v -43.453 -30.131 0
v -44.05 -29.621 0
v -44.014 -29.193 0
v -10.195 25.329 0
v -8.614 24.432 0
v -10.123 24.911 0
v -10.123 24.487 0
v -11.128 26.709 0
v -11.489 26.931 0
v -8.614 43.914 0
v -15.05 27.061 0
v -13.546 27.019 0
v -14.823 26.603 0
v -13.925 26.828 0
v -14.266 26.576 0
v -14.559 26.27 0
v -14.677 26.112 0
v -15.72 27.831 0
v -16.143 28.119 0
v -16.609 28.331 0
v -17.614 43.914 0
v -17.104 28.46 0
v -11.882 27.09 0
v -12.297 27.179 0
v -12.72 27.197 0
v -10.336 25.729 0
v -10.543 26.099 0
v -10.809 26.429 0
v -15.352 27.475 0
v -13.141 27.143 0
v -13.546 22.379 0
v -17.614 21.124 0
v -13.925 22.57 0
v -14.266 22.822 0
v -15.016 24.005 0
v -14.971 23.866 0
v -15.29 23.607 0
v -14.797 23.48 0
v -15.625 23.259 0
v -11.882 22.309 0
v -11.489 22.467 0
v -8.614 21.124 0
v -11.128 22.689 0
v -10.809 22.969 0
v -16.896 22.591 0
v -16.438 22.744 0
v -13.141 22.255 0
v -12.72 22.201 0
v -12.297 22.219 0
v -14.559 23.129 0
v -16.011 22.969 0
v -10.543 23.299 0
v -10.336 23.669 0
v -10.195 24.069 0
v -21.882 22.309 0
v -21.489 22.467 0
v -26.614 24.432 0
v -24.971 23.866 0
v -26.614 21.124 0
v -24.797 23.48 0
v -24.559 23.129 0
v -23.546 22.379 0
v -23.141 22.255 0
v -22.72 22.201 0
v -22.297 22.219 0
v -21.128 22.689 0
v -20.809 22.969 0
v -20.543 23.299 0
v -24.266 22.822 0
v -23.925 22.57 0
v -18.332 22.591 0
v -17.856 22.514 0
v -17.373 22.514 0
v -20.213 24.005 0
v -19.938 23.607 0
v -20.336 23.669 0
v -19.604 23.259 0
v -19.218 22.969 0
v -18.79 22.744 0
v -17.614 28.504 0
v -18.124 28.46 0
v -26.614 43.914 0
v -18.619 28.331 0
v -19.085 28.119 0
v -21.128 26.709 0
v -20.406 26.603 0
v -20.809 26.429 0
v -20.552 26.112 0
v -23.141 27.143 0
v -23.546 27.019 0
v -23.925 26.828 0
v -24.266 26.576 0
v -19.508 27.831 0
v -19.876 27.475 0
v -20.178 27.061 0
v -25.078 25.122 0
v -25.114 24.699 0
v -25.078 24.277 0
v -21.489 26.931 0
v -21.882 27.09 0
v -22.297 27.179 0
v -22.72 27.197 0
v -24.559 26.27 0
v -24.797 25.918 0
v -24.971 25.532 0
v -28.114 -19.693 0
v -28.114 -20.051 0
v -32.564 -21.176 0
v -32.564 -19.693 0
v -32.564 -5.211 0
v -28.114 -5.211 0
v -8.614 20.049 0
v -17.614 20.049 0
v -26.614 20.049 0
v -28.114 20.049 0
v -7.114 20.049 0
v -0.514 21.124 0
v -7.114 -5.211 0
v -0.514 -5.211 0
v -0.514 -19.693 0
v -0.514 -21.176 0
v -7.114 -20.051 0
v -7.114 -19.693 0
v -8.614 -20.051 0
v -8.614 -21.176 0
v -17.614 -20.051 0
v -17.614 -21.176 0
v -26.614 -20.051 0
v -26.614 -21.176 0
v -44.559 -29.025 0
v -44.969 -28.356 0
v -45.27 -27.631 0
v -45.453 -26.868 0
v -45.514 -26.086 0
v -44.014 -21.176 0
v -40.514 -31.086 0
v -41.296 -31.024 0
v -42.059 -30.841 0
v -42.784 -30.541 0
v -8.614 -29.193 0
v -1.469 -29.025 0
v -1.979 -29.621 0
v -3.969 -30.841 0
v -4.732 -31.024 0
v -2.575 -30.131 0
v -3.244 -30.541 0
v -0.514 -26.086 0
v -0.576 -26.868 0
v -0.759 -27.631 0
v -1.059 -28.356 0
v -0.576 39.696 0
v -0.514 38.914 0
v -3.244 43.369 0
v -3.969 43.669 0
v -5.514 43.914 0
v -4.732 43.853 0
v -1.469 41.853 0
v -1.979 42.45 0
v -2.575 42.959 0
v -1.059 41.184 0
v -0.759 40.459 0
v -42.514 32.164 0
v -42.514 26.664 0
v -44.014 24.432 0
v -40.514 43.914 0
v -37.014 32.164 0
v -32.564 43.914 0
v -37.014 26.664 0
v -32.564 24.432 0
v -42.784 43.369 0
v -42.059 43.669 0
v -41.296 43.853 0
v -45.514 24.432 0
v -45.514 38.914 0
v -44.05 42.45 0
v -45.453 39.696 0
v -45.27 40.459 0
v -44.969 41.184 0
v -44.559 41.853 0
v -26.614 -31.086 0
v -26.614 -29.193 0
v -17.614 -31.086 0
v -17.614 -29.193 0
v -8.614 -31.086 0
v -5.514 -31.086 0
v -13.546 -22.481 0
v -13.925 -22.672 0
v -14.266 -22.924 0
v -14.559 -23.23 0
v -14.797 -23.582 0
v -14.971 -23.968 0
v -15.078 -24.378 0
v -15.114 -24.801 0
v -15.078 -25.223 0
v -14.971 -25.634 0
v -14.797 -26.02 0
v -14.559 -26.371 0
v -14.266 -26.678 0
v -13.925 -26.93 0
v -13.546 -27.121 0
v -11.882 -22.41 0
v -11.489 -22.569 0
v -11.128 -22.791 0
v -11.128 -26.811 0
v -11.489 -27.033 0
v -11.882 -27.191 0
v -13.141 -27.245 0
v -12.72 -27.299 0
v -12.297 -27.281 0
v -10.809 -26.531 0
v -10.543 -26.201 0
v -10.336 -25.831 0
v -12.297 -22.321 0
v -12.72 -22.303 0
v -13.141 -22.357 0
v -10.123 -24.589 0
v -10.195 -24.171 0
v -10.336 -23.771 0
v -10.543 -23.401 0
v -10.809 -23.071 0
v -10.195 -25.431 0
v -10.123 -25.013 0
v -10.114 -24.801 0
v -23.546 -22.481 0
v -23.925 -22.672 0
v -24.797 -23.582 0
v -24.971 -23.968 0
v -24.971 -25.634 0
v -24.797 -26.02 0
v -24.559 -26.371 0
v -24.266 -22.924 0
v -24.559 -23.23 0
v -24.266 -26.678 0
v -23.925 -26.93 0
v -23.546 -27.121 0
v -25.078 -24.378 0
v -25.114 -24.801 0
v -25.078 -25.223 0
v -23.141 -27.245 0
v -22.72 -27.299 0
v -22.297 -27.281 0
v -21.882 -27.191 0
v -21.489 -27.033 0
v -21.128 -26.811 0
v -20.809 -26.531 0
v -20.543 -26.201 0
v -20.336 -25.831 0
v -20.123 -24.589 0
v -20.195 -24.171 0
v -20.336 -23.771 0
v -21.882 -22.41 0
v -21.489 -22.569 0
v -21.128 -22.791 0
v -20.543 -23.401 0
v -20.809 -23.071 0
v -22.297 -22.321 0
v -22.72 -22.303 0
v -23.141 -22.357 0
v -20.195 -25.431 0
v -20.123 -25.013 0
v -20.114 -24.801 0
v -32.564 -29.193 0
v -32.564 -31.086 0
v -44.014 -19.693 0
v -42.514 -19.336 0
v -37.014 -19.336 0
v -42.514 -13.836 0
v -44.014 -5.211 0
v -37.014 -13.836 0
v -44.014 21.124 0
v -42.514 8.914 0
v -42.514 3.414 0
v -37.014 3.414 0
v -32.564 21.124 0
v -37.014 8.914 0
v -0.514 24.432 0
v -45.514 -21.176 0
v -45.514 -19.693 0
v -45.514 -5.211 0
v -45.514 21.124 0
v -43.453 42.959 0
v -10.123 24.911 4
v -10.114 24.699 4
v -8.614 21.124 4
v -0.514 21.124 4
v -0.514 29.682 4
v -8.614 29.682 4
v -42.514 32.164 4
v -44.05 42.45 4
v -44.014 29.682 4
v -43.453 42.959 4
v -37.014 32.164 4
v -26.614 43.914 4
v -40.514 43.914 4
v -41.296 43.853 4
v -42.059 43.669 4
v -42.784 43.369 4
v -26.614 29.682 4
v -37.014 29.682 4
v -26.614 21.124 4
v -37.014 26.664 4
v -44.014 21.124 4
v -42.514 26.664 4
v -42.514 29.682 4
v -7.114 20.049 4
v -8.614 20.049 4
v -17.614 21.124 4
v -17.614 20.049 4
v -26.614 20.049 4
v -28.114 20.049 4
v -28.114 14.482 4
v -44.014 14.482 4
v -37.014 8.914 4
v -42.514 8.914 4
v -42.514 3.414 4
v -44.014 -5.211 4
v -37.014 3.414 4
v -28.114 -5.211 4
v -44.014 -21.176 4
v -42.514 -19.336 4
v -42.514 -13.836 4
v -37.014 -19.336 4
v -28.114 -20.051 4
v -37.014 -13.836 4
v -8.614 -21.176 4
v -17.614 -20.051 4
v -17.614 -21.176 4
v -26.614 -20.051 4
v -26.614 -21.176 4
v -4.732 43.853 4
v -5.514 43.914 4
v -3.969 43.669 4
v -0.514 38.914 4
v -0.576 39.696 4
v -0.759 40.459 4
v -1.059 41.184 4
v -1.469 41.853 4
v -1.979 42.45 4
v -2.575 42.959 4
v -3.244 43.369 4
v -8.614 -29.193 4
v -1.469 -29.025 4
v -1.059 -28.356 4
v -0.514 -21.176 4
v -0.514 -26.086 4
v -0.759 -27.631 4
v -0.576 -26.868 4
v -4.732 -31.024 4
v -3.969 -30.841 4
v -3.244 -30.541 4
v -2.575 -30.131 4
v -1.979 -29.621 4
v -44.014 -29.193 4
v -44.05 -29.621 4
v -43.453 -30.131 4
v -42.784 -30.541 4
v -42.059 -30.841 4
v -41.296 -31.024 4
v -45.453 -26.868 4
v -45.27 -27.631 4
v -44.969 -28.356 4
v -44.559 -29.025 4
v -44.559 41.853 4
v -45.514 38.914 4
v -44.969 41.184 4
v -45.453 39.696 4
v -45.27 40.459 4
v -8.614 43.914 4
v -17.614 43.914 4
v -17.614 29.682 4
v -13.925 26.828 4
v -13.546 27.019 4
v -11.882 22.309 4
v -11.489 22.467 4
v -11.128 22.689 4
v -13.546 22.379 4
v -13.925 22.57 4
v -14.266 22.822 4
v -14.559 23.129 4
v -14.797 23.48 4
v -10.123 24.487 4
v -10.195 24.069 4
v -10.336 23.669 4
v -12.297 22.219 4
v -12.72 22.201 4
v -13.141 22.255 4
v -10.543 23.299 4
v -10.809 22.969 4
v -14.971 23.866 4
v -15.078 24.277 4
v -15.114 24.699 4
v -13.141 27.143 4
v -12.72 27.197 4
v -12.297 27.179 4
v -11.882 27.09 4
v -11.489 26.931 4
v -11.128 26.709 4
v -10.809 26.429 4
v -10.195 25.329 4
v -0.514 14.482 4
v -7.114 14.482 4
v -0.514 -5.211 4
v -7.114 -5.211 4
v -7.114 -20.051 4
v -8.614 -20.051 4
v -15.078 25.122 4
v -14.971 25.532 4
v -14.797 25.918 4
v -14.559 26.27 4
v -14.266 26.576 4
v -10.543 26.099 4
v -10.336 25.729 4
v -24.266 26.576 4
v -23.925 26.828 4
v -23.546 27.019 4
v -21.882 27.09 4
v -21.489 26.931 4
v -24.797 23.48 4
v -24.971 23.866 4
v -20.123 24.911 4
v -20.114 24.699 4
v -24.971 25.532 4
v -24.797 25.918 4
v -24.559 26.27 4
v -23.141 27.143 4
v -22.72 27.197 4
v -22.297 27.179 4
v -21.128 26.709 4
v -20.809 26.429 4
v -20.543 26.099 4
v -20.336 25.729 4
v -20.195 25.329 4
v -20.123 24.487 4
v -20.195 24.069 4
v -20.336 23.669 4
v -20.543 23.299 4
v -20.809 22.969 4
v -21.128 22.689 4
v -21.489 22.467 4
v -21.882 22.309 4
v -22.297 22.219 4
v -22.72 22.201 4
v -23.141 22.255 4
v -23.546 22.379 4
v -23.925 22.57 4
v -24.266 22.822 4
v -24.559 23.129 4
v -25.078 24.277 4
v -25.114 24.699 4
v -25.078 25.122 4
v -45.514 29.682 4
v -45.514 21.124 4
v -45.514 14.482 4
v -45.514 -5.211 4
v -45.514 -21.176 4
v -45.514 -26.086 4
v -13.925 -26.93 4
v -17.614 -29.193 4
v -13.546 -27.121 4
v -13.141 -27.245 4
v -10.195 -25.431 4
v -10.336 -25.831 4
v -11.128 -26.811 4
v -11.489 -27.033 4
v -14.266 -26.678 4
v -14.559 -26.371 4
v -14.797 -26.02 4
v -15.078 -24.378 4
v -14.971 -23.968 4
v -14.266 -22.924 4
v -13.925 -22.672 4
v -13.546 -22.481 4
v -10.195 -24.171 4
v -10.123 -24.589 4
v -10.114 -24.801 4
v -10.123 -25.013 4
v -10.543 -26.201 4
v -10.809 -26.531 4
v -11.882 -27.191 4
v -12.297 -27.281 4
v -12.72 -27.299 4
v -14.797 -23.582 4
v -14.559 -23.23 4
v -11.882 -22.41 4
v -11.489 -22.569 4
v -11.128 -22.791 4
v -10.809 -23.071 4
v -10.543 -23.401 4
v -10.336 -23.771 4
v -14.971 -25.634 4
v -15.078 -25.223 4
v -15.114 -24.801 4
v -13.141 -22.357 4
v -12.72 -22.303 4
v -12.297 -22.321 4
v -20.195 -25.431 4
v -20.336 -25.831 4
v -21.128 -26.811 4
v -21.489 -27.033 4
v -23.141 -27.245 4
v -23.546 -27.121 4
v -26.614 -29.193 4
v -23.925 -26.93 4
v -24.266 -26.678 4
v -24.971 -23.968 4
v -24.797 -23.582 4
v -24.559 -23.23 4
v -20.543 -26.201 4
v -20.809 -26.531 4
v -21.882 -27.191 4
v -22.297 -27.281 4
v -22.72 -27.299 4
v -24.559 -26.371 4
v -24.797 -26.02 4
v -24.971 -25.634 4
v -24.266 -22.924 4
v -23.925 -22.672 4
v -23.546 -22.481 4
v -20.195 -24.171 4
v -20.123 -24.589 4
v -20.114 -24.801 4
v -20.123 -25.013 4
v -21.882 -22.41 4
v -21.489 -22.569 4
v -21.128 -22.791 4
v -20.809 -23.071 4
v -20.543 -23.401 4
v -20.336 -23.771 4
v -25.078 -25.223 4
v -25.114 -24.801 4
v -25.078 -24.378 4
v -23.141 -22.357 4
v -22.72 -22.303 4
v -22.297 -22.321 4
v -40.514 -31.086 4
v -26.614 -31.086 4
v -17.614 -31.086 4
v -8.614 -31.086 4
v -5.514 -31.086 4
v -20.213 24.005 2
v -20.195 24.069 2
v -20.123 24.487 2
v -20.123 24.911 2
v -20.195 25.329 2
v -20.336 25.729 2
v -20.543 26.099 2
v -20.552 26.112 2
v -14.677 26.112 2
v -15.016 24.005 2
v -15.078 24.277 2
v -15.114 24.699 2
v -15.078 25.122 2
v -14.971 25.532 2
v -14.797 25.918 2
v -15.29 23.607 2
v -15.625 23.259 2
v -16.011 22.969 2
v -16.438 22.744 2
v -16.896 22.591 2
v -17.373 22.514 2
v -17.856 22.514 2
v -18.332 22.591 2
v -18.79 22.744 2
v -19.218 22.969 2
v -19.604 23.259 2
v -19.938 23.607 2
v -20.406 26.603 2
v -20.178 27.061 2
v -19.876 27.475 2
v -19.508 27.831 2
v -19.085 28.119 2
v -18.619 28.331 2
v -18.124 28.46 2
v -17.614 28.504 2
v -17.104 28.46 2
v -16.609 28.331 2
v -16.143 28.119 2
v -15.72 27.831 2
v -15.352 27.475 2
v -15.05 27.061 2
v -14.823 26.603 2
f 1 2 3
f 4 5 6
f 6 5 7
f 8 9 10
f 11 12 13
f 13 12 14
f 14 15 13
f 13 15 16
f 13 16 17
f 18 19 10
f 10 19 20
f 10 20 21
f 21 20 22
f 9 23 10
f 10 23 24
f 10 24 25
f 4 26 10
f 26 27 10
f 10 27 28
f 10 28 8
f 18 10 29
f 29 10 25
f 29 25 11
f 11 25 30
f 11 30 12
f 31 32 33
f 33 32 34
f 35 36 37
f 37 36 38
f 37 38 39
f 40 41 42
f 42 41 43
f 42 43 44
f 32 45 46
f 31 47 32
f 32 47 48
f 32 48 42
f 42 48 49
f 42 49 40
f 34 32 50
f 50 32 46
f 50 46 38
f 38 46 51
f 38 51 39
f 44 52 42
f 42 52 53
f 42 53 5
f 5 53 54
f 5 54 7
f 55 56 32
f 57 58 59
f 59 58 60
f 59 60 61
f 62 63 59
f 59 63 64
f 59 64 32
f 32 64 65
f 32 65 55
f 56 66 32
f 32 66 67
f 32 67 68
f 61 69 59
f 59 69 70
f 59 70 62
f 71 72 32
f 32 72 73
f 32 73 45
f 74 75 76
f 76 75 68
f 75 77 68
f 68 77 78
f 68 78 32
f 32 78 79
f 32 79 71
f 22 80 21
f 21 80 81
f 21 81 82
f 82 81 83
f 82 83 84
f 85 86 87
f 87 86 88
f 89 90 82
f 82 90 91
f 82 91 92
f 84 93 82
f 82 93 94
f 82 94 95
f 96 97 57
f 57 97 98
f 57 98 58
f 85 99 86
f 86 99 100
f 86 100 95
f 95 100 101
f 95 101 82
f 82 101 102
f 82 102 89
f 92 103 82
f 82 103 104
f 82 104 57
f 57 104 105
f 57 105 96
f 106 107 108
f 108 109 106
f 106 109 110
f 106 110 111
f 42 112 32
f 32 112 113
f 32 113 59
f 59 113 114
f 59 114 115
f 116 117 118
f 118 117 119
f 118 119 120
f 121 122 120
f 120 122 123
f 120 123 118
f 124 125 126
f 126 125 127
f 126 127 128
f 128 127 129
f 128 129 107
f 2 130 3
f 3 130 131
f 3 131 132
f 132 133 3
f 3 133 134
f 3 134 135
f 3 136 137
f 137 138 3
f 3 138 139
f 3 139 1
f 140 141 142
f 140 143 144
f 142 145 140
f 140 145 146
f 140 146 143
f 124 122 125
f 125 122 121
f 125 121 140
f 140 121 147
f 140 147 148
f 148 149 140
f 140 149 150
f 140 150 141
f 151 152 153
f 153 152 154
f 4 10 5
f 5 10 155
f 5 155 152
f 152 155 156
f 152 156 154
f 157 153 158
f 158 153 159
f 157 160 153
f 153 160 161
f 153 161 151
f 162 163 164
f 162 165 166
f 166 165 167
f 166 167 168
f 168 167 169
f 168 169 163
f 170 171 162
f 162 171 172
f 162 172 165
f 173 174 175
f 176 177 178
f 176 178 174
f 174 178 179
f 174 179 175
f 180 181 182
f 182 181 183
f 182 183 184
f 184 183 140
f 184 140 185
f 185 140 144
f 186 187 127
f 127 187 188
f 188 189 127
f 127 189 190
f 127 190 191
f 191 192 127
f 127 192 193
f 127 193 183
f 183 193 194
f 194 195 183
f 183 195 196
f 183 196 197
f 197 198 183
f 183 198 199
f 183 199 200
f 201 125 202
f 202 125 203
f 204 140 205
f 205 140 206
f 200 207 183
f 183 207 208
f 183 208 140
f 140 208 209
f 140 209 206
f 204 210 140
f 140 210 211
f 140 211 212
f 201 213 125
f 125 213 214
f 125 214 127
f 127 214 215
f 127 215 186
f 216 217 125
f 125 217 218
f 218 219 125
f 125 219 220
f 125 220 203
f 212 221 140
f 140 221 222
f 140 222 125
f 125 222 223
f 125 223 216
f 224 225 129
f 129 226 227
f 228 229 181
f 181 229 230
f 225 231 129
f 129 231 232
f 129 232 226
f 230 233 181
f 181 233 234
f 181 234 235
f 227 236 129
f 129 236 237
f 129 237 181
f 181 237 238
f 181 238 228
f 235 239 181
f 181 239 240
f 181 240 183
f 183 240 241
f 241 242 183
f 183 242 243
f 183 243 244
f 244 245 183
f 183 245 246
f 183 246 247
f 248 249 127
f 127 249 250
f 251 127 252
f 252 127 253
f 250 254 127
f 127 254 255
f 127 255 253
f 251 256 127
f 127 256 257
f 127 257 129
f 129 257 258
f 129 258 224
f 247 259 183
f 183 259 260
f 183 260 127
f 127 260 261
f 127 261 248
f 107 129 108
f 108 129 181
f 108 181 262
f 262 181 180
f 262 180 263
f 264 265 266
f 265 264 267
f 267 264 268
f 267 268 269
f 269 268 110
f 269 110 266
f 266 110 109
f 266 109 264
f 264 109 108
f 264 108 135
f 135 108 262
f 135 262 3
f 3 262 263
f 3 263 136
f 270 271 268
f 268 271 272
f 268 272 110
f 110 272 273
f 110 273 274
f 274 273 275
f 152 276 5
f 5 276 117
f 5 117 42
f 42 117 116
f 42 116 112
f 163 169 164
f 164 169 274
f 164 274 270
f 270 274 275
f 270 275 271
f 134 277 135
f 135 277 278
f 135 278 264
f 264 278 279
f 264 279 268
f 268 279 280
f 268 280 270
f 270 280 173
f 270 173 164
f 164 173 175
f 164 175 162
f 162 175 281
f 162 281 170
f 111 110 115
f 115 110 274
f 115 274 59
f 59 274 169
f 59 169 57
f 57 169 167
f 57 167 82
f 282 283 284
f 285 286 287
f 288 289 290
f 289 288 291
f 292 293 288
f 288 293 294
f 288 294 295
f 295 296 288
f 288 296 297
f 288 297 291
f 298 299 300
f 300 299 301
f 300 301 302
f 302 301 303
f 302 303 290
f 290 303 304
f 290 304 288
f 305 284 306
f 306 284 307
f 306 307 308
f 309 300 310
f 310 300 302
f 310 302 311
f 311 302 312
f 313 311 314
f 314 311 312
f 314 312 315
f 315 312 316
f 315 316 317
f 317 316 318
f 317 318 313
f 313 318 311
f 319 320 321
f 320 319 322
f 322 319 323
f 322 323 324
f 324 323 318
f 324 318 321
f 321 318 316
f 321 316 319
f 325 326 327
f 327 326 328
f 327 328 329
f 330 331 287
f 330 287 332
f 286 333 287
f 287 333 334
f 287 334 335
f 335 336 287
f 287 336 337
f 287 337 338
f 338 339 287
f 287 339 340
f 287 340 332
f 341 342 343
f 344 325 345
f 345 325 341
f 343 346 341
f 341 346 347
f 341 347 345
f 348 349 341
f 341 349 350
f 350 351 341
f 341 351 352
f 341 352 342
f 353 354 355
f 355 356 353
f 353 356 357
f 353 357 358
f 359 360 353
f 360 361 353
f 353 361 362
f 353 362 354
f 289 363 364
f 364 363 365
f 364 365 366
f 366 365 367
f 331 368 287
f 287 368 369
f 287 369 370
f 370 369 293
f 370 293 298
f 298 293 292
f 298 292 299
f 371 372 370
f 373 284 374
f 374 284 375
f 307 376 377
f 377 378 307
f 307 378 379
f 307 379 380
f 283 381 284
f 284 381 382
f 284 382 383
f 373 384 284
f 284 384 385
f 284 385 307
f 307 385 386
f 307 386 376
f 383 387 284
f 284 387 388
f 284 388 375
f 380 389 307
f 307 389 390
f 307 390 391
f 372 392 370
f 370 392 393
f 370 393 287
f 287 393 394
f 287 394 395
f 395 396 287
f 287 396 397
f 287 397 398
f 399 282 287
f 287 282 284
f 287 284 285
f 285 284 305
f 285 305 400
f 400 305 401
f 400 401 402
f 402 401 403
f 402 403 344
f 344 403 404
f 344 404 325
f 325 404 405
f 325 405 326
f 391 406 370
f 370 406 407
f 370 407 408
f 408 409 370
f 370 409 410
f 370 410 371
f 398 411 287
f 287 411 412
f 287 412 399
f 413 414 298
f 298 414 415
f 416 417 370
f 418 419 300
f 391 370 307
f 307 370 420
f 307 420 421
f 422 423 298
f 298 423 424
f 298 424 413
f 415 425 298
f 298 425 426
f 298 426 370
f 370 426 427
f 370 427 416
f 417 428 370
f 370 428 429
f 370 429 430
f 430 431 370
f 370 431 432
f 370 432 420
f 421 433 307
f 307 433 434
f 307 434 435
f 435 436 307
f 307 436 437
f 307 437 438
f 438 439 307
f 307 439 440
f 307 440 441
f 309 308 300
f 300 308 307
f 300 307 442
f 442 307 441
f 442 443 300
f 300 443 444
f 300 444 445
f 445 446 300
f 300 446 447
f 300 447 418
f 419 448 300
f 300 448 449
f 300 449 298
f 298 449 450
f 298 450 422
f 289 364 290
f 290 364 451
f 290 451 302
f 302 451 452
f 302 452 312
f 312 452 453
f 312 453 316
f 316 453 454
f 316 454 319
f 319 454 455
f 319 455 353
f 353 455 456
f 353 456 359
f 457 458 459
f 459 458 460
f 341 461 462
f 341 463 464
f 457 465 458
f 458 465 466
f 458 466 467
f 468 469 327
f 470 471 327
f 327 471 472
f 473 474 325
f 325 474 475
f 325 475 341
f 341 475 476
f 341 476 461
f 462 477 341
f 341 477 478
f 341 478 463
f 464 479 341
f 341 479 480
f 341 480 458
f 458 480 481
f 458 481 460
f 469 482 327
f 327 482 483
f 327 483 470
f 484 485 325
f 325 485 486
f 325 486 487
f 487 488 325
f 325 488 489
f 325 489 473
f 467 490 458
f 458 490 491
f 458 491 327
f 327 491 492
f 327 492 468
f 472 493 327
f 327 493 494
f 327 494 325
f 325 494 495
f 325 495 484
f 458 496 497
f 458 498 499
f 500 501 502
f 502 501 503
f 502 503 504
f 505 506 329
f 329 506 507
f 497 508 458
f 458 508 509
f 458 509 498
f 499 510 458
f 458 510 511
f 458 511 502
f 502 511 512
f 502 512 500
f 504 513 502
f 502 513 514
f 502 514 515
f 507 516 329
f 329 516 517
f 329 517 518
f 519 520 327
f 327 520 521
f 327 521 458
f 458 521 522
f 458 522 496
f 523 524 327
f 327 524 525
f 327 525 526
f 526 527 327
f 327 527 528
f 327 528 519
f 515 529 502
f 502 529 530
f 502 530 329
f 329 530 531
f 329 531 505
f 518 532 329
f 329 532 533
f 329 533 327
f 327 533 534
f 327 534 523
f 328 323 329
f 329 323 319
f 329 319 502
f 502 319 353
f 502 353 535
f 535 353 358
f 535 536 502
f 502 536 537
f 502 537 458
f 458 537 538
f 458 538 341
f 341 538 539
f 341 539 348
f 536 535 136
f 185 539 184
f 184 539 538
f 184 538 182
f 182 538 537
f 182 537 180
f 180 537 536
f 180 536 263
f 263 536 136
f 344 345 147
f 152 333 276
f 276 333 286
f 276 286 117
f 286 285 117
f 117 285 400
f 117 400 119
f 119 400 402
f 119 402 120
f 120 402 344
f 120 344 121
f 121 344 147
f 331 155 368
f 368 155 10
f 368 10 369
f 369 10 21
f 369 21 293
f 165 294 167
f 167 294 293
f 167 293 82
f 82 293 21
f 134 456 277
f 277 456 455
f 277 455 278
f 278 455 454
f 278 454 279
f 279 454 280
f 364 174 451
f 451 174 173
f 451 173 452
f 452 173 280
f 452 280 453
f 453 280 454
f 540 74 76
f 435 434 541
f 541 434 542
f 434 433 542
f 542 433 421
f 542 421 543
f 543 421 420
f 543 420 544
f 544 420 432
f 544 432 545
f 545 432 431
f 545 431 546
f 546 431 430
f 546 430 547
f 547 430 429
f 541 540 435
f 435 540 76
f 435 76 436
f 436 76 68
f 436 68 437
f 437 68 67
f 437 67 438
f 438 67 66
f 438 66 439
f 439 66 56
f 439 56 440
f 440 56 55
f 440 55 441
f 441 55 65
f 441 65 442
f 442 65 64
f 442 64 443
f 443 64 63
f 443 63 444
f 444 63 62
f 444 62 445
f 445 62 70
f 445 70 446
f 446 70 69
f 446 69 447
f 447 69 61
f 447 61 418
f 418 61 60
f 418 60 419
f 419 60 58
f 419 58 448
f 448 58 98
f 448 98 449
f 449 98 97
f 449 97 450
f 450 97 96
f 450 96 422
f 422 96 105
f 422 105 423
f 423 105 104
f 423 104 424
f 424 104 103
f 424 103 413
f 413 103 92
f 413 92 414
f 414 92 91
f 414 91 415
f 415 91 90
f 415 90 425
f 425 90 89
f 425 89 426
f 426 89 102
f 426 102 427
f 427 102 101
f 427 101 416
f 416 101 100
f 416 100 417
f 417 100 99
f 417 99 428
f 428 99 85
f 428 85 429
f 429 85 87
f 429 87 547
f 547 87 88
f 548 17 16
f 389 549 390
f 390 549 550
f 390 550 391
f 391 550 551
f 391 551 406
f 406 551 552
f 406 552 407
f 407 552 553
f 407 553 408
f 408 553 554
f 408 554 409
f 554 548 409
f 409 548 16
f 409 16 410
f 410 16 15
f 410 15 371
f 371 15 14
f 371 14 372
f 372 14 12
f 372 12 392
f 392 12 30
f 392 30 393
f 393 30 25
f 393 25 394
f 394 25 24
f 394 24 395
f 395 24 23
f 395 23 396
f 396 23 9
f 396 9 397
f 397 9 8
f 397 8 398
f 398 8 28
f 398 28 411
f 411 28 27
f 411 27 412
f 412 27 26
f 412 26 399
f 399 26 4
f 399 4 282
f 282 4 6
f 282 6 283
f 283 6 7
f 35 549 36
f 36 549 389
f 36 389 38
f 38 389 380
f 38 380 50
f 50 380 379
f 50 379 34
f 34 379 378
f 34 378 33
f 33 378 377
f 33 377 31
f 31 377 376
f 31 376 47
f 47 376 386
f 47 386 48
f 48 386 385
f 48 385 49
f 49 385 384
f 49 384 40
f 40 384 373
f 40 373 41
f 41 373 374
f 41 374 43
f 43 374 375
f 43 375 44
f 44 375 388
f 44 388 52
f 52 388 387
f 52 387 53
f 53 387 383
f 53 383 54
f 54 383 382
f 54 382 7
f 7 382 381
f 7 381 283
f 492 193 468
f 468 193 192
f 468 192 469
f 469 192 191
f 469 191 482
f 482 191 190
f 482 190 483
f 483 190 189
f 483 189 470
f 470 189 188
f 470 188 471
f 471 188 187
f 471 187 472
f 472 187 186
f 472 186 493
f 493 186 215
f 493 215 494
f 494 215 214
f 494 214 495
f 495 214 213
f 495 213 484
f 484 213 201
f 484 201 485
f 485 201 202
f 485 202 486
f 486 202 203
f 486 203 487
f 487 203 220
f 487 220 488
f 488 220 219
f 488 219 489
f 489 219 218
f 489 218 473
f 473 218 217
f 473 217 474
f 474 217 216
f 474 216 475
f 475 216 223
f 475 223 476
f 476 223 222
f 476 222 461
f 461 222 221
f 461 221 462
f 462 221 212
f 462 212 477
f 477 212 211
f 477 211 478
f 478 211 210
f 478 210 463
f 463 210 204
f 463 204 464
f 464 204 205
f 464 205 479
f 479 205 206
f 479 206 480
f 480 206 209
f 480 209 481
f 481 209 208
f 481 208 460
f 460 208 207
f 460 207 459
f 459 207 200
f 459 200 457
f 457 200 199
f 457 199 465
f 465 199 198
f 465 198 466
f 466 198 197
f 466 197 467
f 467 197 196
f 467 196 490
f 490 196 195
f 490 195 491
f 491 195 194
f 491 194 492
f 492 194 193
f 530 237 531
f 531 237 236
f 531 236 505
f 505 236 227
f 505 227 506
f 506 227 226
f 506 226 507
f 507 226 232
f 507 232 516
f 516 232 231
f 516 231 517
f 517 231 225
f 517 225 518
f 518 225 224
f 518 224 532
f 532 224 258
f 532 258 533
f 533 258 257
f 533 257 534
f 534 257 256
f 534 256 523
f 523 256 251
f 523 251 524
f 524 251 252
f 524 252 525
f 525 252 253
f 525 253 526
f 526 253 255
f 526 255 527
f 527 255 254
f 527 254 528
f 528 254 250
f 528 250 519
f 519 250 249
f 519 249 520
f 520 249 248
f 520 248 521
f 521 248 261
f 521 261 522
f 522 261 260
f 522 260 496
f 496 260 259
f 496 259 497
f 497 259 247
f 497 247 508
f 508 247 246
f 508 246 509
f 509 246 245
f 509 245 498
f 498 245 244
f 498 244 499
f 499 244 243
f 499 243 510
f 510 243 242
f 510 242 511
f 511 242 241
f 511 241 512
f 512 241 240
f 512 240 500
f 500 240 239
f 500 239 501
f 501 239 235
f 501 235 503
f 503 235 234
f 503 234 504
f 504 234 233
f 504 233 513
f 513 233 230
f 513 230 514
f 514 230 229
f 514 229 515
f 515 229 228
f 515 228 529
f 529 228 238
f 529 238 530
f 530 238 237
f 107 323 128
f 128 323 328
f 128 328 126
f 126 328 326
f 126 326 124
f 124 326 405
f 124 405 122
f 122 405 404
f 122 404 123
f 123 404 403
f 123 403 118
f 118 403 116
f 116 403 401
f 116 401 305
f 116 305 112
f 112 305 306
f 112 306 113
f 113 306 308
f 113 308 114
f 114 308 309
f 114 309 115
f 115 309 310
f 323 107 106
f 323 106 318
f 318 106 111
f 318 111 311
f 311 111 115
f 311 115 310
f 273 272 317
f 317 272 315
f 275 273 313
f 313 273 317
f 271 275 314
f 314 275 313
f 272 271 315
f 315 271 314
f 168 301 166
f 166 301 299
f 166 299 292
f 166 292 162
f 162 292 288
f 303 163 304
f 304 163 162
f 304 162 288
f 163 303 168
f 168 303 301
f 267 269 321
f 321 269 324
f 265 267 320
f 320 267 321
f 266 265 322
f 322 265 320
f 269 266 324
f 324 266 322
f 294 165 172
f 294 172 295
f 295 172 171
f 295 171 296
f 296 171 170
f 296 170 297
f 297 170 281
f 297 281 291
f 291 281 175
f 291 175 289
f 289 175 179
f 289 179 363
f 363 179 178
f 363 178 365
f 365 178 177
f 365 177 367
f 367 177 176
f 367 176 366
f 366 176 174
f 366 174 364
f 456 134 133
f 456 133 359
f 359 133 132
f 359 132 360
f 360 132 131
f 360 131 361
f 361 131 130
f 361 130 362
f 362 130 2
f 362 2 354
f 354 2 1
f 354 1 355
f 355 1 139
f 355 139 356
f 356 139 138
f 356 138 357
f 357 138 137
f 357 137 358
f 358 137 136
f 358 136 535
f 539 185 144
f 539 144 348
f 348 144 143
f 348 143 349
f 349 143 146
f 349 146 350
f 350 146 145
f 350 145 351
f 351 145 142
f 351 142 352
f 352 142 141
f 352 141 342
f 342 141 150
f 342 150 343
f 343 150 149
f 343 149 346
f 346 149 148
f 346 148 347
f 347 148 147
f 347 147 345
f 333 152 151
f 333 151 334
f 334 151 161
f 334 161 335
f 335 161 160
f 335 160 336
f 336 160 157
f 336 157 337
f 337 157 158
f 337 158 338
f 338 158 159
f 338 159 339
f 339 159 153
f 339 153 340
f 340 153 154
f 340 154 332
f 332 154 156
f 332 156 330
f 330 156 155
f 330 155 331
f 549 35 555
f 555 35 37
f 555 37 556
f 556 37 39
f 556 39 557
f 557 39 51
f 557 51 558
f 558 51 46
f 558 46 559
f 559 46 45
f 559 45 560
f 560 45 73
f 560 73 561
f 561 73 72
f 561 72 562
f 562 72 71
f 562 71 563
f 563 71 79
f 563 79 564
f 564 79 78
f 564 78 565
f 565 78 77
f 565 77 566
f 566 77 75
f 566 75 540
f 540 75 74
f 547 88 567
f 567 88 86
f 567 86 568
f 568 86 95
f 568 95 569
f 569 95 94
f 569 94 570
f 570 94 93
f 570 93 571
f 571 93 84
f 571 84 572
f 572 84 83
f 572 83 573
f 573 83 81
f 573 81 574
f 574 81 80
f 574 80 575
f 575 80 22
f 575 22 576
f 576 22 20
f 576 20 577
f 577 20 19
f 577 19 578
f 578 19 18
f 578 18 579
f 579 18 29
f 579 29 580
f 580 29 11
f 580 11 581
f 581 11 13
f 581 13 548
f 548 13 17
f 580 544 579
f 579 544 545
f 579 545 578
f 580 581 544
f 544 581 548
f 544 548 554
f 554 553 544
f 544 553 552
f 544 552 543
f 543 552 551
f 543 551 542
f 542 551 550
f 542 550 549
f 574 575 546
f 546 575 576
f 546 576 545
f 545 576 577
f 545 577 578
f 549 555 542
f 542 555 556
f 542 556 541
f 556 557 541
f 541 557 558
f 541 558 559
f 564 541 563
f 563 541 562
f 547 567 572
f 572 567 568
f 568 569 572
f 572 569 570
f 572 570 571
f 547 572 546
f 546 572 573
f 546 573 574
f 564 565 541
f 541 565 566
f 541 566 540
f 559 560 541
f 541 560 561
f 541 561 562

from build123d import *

# Parameters (mm, degrees)
SKETCH_4_R          = 2.5
SKETCH_4_W          = 21
SKETCH_4_H          = 40.1
EXTRUDE_1_DEPTH     = 4
SKETCH_5_W          = 5.5
SKETCH_5_H          = 5.5
CUT_EXTRUDE_5_DEPTH = 10
FILLET_1_R          = 5
SKETCH_6_R          = 3
CUT_EXTRUDE_6_DEPTH = 2


with BuildPart() as part:
    # 草图4 → 凸台-拉伸1 (new body)
    with BuildSketch(Plane.XY):
        Polygon((-30.514243596, -31.085830111), (-0.514243596, -31.085830111), (-0.514243596, 43.914169889), (-30.514243596, 43.914169889), (-45.514243596, 43.914169889), (-45.514243596, -31.085830111), align=None)
        with Locations((-22.614243596, 24.699169889)):
            Circle(SKETCH_4_R, mode=Mode.SUBTRACT)
        with Locations((-12.614243596, 24.699169889)):
            Circle(SKETCH_4_R, mode=Mode.SUBTRACT)
        with Locations((-12.614243596, -24.800830111)):
            Circle(SKETCH_4_R, mode=Mode.SUBTRACT)
        with Locations((-22.614243596, -24.800830111)):
            Circle(SKETCH_4_R, mode=Mode.SUBTRACT)
        with Locations((-17.614243596, -0.000830111)):
            Rectangle(SKETCH_4_W, SKETCH_4_H, mode=Mode.SUBTRACT)
    extrude(amount=EXTRUDE_1_DEPTH)

    # 草图5 → 切除-拉伸5 (cut)
    with BuildSketch(Plane(origin=(0, 0, 0), x_dir=(-1, 0, 0), z_dir=(0, 0, -1))):
        Polygon((42.514243596, 3.414169889), (42.514243596, 6.414169889), (42.514243596, 8.914169889), (37.014243596, 8.914169889), (37.014243596, 3.414169889), align=None)
        with Locations((39.764243596, 29.414169889)):
            Rectangle(SKETCH_5_W, SKETCH_5_H)
        with Locations((39.764243596, -16.585830111)):
            Rectangle(SKETCH_5_W, SKETCH_5_H)
    extrude(amount=-CUT_EXTRUDE_5_DEPTH, mode=Mode.SUBTRACT)

    # 圆角1
    fillet_1_edges = [part.edges().sort_by_distance(p)[0] for p in [
        (-45.514243596, -31.085830111, 2),
        (-45.514243596, 43.914169889, 2),
        (-0.514243596, 43.914169889, 2),
        (-0.514243596, -31.085830111, 2),
    ]]
    fillet(fillet_1_edges, radius=FILLET_1_R)

    # 草图6 → 切除-拉伸6 (cut)
    with BuildSketch(Plane(origin=(0, 0, 0), x_dir=(-1, 0, 0), z_dir=(0, 0, -1))):
        with Locations((17.614243596, 25.504169889)):
            Circle(SKETCH_6_R)
    extrude(amount=-CUT_EXTRUDE_6_DEPTH, mode=Mode.SUBTRACT)


solid = part.part
